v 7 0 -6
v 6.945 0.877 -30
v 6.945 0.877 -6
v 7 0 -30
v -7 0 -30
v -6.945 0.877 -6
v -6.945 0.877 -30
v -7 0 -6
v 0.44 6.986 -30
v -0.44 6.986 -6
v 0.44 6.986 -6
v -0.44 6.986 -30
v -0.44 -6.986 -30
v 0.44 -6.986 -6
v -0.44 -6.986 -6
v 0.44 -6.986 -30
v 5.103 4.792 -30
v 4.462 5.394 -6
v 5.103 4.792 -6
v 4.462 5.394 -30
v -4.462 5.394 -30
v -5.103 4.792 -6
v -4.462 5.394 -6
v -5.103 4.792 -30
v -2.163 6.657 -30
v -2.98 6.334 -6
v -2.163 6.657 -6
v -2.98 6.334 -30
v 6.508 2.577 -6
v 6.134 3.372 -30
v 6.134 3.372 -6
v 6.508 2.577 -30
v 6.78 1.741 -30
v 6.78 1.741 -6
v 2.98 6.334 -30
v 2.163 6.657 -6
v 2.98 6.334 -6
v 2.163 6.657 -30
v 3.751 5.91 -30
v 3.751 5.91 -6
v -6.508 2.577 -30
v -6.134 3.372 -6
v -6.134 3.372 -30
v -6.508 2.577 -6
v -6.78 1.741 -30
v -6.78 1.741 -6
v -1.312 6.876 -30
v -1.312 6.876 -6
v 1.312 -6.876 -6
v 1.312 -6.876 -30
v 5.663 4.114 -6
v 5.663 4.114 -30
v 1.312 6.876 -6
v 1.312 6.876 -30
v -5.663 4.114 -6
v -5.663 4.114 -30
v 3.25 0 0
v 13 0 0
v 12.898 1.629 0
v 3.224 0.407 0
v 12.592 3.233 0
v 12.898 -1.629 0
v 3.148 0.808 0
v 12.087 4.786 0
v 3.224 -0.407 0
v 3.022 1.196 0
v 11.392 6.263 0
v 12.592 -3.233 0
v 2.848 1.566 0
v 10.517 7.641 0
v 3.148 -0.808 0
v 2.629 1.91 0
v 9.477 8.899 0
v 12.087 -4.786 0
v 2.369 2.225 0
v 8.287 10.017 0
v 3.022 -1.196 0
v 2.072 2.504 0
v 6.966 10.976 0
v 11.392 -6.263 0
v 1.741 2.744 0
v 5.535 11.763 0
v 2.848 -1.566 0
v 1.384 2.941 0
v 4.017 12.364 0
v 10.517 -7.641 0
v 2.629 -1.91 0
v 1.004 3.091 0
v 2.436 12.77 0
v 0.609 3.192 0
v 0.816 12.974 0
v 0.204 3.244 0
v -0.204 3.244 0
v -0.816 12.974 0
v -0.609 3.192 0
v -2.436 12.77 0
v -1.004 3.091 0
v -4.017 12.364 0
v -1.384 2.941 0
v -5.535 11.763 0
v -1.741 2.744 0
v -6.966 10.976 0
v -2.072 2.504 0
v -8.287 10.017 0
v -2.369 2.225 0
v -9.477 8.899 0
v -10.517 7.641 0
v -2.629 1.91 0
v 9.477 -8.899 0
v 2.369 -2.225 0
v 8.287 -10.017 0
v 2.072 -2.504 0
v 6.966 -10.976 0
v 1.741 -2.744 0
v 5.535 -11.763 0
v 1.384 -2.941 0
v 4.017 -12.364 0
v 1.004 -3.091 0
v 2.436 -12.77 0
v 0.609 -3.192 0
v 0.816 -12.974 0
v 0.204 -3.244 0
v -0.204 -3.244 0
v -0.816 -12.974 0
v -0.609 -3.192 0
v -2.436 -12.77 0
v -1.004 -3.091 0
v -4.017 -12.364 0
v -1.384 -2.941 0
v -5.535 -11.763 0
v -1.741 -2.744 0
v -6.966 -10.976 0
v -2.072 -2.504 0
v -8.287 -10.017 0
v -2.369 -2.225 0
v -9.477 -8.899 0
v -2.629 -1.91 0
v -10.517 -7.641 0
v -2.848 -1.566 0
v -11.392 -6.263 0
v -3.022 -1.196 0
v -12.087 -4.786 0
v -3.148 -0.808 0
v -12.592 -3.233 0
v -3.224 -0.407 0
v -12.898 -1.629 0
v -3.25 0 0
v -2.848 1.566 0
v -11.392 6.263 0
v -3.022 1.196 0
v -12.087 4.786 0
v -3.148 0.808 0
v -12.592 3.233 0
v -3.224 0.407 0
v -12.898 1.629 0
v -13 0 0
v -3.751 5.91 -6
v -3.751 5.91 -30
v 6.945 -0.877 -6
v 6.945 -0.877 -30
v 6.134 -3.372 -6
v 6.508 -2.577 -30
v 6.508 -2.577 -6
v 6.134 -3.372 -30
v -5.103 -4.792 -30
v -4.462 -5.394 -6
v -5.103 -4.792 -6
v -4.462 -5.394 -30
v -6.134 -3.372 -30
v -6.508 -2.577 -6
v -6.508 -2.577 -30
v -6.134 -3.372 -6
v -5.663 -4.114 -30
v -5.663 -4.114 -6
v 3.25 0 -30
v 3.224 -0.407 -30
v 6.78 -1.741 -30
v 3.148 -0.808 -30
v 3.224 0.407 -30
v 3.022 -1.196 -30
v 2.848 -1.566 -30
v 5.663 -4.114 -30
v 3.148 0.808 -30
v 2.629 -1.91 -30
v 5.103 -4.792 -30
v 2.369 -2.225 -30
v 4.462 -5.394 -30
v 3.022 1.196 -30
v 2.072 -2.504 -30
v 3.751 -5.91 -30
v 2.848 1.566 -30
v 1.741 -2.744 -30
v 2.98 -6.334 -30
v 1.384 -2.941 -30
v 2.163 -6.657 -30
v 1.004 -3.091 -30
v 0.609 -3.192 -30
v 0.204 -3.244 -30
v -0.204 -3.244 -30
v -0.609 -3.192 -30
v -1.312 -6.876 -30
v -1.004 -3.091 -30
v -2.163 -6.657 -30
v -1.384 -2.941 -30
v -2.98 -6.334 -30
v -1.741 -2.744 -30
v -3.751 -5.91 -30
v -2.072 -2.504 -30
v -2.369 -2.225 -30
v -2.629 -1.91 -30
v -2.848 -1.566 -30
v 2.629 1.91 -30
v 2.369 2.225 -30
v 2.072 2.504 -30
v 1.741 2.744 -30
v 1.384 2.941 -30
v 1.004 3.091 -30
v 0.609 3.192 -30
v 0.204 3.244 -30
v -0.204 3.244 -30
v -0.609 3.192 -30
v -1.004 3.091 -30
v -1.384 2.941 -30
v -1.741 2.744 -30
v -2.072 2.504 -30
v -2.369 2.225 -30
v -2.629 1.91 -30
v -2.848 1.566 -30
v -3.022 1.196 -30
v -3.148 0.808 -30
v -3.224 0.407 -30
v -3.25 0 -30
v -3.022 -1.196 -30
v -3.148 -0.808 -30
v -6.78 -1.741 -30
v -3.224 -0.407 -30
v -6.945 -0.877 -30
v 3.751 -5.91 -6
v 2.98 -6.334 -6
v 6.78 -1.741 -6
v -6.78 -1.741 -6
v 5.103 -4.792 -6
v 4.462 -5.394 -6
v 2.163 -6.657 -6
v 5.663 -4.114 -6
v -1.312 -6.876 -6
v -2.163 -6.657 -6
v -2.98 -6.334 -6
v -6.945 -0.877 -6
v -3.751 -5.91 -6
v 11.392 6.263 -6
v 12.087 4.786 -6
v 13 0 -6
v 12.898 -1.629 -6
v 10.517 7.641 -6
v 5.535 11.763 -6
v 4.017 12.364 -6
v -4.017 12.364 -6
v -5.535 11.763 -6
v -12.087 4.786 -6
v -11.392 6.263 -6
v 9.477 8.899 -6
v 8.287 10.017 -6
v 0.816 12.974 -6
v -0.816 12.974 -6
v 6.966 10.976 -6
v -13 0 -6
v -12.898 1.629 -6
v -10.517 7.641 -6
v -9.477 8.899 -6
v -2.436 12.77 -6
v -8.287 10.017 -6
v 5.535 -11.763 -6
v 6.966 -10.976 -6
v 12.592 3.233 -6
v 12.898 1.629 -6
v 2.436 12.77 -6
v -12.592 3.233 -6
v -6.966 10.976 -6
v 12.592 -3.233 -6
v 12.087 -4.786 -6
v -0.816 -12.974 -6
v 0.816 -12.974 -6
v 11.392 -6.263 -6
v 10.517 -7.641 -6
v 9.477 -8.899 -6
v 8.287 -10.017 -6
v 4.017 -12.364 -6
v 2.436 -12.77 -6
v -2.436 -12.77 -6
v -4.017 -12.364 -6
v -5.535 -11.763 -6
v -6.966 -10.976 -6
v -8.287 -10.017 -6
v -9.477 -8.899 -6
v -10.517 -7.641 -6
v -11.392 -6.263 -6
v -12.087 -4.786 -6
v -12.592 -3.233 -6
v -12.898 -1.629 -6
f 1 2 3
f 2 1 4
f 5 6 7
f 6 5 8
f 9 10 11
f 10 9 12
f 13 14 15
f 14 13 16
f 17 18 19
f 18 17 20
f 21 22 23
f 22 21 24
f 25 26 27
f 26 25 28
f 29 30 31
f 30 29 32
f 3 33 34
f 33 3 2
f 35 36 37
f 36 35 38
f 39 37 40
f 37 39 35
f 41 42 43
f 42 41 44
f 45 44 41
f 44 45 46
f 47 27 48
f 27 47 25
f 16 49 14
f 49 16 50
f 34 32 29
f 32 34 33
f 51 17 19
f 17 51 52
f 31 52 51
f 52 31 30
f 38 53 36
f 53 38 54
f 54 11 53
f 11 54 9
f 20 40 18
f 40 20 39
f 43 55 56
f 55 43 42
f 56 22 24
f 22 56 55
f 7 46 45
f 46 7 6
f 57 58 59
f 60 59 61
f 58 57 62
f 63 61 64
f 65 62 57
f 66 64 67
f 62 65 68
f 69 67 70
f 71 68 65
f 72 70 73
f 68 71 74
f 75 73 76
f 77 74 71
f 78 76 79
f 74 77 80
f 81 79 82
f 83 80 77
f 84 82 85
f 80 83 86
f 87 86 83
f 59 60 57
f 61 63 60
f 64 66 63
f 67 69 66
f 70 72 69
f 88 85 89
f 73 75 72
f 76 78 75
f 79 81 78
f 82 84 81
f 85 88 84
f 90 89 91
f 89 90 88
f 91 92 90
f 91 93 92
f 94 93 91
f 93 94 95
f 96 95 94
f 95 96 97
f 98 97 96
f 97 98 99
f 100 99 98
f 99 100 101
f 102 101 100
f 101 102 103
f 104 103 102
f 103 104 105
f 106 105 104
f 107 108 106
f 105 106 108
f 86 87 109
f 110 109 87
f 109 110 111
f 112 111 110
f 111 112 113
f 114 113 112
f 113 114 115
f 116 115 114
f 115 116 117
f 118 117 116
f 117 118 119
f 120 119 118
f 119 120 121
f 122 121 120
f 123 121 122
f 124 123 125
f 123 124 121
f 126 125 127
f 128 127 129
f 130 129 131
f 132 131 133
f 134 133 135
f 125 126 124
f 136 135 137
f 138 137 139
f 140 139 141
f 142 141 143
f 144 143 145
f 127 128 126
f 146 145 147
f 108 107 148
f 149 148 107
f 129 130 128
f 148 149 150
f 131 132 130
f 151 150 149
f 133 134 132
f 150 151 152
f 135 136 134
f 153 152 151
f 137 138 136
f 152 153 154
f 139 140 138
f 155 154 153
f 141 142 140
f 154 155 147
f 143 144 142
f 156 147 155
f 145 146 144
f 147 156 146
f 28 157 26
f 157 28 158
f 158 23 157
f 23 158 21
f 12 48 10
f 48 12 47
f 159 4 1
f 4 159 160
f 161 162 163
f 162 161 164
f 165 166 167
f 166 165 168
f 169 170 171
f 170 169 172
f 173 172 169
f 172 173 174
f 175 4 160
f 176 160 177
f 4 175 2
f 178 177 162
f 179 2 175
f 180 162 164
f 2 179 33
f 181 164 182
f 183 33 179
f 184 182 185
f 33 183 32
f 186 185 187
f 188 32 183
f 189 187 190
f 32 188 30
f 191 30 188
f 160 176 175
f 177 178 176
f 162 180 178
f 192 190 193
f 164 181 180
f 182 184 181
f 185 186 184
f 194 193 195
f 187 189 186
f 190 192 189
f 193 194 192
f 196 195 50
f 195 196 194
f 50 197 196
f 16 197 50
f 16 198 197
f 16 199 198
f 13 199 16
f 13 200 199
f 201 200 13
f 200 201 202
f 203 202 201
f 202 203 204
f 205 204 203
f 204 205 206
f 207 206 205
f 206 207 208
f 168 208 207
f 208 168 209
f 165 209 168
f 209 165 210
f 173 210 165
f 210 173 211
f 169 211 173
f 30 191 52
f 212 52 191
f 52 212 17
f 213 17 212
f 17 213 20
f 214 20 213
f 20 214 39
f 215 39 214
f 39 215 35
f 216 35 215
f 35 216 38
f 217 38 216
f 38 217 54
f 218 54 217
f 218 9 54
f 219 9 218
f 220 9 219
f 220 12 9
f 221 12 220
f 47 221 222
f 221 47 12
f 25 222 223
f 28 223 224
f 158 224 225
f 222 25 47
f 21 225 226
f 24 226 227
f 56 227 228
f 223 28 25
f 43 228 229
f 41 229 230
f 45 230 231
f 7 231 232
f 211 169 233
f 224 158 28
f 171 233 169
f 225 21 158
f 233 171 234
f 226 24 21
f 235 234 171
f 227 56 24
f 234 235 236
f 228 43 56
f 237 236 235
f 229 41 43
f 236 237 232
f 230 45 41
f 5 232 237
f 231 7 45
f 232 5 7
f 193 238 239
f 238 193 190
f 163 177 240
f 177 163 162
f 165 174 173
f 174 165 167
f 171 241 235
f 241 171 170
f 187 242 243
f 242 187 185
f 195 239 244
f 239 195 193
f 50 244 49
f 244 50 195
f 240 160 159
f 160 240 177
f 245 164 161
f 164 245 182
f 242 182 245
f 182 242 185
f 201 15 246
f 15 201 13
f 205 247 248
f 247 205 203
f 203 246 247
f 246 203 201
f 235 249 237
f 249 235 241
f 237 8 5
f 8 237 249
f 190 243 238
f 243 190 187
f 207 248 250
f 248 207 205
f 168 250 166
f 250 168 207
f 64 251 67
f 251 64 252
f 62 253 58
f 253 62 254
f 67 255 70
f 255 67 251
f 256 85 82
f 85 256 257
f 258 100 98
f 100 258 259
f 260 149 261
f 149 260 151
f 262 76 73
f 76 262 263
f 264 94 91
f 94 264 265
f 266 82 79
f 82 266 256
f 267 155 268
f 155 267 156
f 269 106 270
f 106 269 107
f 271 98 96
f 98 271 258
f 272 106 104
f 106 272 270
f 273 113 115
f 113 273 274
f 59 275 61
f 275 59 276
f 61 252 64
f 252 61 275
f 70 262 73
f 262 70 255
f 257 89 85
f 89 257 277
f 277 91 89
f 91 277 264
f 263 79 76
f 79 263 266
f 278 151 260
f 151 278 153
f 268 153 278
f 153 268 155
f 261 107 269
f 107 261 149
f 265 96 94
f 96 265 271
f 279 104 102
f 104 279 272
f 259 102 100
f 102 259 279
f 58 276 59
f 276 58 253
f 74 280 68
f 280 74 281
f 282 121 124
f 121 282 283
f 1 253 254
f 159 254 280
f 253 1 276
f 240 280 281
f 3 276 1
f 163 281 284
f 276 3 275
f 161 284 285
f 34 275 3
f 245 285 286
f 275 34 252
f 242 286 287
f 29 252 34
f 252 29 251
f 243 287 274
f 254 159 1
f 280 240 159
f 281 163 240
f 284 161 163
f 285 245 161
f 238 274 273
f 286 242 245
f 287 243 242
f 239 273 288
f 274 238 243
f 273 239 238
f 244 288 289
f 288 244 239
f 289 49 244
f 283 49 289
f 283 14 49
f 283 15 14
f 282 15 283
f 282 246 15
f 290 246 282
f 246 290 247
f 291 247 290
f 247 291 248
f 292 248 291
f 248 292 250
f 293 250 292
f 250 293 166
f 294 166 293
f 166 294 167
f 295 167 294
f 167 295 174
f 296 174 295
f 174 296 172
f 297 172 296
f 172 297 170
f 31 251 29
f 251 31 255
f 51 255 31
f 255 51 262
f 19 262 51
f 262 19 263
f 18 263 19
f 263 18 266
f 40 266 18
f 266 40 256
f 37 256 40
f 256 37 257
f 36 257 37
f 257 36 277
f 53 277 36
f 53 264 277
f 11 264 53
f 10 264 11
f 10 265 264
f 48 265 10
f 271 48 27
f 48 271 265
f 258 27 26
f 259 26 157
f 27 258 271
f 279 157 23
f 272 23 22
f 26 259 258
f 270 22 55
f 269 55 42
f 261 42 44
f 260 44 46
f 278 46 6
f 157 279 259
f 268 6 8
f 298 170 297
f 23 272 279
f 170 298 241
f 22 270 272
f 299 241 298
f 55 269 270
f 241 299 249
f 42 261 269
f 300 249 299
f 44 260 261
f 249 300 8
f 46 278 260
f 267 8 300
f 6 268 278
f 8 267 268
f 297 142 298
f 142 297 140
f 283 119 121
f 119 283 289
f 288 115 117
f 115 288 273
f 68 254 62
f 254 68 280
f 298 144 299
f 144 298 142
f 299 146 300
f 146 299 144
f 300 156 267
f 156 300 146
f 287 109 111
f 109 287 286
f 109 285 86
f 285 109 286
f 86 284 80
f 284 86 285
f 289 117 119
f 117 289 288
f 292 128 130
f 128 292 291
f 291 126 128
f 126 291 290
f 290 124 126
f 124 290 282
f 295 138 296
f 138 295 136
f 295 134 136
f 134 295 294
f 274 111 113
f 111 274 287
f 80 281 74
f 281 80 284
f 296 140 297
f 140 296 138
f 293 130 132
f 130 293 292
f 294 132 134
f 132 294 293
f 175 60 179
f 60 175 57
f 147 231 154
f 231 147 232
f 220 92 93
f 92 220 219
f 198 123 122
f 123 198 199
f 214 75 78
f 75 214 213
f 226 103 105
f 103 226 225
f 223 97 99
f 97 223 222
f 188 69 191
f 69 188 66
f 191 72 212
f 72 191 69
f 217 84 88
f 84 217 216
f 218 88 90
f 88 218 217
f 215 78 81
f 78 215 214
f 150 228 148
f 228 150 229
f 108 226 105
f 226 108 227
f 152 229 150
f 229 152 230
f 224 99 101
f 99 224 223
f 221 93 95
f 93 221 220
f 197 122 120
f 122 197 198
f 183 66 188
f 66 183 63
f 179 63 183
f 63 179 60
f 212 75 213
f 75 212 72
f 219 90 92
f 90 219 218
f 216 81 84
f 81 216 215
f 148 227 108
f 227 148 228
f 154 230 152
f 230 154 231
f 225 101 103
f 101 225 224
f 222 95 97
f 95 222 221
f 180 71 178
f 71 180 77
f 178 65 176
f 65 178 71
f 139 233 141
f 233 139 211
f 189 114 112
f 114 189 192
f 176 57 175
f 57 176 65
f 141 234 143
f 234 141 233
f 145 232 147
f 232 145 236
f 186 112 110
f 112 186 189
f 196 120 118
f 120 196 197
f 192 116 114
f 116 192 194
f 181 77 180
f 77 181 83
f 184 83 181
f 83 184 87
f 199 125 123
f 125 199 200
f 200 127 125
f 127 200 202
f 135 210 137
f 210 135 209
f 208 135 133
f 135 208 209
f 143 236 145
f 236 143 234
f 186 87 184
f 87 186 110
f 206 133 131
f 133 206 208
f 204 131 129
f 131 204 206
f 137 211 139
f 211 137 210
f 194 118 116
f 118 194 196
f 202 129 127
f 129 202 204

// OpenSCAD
$fn = 50;


difference() {
	union() {
		translate(v = [0, 0, -30.0000000000]) {
			cylinder(h = 30, r = 7);
		}
		translate(v = [0, 0, -6.0000000000]) {
			cylinder(h = 6, r = 13);
		}
	}
	union() {
		#translate(v = [0, 0, -100.0000000000]) {
			cylinder(h = 200, r = 3.2500000000);
		}
	}
}
